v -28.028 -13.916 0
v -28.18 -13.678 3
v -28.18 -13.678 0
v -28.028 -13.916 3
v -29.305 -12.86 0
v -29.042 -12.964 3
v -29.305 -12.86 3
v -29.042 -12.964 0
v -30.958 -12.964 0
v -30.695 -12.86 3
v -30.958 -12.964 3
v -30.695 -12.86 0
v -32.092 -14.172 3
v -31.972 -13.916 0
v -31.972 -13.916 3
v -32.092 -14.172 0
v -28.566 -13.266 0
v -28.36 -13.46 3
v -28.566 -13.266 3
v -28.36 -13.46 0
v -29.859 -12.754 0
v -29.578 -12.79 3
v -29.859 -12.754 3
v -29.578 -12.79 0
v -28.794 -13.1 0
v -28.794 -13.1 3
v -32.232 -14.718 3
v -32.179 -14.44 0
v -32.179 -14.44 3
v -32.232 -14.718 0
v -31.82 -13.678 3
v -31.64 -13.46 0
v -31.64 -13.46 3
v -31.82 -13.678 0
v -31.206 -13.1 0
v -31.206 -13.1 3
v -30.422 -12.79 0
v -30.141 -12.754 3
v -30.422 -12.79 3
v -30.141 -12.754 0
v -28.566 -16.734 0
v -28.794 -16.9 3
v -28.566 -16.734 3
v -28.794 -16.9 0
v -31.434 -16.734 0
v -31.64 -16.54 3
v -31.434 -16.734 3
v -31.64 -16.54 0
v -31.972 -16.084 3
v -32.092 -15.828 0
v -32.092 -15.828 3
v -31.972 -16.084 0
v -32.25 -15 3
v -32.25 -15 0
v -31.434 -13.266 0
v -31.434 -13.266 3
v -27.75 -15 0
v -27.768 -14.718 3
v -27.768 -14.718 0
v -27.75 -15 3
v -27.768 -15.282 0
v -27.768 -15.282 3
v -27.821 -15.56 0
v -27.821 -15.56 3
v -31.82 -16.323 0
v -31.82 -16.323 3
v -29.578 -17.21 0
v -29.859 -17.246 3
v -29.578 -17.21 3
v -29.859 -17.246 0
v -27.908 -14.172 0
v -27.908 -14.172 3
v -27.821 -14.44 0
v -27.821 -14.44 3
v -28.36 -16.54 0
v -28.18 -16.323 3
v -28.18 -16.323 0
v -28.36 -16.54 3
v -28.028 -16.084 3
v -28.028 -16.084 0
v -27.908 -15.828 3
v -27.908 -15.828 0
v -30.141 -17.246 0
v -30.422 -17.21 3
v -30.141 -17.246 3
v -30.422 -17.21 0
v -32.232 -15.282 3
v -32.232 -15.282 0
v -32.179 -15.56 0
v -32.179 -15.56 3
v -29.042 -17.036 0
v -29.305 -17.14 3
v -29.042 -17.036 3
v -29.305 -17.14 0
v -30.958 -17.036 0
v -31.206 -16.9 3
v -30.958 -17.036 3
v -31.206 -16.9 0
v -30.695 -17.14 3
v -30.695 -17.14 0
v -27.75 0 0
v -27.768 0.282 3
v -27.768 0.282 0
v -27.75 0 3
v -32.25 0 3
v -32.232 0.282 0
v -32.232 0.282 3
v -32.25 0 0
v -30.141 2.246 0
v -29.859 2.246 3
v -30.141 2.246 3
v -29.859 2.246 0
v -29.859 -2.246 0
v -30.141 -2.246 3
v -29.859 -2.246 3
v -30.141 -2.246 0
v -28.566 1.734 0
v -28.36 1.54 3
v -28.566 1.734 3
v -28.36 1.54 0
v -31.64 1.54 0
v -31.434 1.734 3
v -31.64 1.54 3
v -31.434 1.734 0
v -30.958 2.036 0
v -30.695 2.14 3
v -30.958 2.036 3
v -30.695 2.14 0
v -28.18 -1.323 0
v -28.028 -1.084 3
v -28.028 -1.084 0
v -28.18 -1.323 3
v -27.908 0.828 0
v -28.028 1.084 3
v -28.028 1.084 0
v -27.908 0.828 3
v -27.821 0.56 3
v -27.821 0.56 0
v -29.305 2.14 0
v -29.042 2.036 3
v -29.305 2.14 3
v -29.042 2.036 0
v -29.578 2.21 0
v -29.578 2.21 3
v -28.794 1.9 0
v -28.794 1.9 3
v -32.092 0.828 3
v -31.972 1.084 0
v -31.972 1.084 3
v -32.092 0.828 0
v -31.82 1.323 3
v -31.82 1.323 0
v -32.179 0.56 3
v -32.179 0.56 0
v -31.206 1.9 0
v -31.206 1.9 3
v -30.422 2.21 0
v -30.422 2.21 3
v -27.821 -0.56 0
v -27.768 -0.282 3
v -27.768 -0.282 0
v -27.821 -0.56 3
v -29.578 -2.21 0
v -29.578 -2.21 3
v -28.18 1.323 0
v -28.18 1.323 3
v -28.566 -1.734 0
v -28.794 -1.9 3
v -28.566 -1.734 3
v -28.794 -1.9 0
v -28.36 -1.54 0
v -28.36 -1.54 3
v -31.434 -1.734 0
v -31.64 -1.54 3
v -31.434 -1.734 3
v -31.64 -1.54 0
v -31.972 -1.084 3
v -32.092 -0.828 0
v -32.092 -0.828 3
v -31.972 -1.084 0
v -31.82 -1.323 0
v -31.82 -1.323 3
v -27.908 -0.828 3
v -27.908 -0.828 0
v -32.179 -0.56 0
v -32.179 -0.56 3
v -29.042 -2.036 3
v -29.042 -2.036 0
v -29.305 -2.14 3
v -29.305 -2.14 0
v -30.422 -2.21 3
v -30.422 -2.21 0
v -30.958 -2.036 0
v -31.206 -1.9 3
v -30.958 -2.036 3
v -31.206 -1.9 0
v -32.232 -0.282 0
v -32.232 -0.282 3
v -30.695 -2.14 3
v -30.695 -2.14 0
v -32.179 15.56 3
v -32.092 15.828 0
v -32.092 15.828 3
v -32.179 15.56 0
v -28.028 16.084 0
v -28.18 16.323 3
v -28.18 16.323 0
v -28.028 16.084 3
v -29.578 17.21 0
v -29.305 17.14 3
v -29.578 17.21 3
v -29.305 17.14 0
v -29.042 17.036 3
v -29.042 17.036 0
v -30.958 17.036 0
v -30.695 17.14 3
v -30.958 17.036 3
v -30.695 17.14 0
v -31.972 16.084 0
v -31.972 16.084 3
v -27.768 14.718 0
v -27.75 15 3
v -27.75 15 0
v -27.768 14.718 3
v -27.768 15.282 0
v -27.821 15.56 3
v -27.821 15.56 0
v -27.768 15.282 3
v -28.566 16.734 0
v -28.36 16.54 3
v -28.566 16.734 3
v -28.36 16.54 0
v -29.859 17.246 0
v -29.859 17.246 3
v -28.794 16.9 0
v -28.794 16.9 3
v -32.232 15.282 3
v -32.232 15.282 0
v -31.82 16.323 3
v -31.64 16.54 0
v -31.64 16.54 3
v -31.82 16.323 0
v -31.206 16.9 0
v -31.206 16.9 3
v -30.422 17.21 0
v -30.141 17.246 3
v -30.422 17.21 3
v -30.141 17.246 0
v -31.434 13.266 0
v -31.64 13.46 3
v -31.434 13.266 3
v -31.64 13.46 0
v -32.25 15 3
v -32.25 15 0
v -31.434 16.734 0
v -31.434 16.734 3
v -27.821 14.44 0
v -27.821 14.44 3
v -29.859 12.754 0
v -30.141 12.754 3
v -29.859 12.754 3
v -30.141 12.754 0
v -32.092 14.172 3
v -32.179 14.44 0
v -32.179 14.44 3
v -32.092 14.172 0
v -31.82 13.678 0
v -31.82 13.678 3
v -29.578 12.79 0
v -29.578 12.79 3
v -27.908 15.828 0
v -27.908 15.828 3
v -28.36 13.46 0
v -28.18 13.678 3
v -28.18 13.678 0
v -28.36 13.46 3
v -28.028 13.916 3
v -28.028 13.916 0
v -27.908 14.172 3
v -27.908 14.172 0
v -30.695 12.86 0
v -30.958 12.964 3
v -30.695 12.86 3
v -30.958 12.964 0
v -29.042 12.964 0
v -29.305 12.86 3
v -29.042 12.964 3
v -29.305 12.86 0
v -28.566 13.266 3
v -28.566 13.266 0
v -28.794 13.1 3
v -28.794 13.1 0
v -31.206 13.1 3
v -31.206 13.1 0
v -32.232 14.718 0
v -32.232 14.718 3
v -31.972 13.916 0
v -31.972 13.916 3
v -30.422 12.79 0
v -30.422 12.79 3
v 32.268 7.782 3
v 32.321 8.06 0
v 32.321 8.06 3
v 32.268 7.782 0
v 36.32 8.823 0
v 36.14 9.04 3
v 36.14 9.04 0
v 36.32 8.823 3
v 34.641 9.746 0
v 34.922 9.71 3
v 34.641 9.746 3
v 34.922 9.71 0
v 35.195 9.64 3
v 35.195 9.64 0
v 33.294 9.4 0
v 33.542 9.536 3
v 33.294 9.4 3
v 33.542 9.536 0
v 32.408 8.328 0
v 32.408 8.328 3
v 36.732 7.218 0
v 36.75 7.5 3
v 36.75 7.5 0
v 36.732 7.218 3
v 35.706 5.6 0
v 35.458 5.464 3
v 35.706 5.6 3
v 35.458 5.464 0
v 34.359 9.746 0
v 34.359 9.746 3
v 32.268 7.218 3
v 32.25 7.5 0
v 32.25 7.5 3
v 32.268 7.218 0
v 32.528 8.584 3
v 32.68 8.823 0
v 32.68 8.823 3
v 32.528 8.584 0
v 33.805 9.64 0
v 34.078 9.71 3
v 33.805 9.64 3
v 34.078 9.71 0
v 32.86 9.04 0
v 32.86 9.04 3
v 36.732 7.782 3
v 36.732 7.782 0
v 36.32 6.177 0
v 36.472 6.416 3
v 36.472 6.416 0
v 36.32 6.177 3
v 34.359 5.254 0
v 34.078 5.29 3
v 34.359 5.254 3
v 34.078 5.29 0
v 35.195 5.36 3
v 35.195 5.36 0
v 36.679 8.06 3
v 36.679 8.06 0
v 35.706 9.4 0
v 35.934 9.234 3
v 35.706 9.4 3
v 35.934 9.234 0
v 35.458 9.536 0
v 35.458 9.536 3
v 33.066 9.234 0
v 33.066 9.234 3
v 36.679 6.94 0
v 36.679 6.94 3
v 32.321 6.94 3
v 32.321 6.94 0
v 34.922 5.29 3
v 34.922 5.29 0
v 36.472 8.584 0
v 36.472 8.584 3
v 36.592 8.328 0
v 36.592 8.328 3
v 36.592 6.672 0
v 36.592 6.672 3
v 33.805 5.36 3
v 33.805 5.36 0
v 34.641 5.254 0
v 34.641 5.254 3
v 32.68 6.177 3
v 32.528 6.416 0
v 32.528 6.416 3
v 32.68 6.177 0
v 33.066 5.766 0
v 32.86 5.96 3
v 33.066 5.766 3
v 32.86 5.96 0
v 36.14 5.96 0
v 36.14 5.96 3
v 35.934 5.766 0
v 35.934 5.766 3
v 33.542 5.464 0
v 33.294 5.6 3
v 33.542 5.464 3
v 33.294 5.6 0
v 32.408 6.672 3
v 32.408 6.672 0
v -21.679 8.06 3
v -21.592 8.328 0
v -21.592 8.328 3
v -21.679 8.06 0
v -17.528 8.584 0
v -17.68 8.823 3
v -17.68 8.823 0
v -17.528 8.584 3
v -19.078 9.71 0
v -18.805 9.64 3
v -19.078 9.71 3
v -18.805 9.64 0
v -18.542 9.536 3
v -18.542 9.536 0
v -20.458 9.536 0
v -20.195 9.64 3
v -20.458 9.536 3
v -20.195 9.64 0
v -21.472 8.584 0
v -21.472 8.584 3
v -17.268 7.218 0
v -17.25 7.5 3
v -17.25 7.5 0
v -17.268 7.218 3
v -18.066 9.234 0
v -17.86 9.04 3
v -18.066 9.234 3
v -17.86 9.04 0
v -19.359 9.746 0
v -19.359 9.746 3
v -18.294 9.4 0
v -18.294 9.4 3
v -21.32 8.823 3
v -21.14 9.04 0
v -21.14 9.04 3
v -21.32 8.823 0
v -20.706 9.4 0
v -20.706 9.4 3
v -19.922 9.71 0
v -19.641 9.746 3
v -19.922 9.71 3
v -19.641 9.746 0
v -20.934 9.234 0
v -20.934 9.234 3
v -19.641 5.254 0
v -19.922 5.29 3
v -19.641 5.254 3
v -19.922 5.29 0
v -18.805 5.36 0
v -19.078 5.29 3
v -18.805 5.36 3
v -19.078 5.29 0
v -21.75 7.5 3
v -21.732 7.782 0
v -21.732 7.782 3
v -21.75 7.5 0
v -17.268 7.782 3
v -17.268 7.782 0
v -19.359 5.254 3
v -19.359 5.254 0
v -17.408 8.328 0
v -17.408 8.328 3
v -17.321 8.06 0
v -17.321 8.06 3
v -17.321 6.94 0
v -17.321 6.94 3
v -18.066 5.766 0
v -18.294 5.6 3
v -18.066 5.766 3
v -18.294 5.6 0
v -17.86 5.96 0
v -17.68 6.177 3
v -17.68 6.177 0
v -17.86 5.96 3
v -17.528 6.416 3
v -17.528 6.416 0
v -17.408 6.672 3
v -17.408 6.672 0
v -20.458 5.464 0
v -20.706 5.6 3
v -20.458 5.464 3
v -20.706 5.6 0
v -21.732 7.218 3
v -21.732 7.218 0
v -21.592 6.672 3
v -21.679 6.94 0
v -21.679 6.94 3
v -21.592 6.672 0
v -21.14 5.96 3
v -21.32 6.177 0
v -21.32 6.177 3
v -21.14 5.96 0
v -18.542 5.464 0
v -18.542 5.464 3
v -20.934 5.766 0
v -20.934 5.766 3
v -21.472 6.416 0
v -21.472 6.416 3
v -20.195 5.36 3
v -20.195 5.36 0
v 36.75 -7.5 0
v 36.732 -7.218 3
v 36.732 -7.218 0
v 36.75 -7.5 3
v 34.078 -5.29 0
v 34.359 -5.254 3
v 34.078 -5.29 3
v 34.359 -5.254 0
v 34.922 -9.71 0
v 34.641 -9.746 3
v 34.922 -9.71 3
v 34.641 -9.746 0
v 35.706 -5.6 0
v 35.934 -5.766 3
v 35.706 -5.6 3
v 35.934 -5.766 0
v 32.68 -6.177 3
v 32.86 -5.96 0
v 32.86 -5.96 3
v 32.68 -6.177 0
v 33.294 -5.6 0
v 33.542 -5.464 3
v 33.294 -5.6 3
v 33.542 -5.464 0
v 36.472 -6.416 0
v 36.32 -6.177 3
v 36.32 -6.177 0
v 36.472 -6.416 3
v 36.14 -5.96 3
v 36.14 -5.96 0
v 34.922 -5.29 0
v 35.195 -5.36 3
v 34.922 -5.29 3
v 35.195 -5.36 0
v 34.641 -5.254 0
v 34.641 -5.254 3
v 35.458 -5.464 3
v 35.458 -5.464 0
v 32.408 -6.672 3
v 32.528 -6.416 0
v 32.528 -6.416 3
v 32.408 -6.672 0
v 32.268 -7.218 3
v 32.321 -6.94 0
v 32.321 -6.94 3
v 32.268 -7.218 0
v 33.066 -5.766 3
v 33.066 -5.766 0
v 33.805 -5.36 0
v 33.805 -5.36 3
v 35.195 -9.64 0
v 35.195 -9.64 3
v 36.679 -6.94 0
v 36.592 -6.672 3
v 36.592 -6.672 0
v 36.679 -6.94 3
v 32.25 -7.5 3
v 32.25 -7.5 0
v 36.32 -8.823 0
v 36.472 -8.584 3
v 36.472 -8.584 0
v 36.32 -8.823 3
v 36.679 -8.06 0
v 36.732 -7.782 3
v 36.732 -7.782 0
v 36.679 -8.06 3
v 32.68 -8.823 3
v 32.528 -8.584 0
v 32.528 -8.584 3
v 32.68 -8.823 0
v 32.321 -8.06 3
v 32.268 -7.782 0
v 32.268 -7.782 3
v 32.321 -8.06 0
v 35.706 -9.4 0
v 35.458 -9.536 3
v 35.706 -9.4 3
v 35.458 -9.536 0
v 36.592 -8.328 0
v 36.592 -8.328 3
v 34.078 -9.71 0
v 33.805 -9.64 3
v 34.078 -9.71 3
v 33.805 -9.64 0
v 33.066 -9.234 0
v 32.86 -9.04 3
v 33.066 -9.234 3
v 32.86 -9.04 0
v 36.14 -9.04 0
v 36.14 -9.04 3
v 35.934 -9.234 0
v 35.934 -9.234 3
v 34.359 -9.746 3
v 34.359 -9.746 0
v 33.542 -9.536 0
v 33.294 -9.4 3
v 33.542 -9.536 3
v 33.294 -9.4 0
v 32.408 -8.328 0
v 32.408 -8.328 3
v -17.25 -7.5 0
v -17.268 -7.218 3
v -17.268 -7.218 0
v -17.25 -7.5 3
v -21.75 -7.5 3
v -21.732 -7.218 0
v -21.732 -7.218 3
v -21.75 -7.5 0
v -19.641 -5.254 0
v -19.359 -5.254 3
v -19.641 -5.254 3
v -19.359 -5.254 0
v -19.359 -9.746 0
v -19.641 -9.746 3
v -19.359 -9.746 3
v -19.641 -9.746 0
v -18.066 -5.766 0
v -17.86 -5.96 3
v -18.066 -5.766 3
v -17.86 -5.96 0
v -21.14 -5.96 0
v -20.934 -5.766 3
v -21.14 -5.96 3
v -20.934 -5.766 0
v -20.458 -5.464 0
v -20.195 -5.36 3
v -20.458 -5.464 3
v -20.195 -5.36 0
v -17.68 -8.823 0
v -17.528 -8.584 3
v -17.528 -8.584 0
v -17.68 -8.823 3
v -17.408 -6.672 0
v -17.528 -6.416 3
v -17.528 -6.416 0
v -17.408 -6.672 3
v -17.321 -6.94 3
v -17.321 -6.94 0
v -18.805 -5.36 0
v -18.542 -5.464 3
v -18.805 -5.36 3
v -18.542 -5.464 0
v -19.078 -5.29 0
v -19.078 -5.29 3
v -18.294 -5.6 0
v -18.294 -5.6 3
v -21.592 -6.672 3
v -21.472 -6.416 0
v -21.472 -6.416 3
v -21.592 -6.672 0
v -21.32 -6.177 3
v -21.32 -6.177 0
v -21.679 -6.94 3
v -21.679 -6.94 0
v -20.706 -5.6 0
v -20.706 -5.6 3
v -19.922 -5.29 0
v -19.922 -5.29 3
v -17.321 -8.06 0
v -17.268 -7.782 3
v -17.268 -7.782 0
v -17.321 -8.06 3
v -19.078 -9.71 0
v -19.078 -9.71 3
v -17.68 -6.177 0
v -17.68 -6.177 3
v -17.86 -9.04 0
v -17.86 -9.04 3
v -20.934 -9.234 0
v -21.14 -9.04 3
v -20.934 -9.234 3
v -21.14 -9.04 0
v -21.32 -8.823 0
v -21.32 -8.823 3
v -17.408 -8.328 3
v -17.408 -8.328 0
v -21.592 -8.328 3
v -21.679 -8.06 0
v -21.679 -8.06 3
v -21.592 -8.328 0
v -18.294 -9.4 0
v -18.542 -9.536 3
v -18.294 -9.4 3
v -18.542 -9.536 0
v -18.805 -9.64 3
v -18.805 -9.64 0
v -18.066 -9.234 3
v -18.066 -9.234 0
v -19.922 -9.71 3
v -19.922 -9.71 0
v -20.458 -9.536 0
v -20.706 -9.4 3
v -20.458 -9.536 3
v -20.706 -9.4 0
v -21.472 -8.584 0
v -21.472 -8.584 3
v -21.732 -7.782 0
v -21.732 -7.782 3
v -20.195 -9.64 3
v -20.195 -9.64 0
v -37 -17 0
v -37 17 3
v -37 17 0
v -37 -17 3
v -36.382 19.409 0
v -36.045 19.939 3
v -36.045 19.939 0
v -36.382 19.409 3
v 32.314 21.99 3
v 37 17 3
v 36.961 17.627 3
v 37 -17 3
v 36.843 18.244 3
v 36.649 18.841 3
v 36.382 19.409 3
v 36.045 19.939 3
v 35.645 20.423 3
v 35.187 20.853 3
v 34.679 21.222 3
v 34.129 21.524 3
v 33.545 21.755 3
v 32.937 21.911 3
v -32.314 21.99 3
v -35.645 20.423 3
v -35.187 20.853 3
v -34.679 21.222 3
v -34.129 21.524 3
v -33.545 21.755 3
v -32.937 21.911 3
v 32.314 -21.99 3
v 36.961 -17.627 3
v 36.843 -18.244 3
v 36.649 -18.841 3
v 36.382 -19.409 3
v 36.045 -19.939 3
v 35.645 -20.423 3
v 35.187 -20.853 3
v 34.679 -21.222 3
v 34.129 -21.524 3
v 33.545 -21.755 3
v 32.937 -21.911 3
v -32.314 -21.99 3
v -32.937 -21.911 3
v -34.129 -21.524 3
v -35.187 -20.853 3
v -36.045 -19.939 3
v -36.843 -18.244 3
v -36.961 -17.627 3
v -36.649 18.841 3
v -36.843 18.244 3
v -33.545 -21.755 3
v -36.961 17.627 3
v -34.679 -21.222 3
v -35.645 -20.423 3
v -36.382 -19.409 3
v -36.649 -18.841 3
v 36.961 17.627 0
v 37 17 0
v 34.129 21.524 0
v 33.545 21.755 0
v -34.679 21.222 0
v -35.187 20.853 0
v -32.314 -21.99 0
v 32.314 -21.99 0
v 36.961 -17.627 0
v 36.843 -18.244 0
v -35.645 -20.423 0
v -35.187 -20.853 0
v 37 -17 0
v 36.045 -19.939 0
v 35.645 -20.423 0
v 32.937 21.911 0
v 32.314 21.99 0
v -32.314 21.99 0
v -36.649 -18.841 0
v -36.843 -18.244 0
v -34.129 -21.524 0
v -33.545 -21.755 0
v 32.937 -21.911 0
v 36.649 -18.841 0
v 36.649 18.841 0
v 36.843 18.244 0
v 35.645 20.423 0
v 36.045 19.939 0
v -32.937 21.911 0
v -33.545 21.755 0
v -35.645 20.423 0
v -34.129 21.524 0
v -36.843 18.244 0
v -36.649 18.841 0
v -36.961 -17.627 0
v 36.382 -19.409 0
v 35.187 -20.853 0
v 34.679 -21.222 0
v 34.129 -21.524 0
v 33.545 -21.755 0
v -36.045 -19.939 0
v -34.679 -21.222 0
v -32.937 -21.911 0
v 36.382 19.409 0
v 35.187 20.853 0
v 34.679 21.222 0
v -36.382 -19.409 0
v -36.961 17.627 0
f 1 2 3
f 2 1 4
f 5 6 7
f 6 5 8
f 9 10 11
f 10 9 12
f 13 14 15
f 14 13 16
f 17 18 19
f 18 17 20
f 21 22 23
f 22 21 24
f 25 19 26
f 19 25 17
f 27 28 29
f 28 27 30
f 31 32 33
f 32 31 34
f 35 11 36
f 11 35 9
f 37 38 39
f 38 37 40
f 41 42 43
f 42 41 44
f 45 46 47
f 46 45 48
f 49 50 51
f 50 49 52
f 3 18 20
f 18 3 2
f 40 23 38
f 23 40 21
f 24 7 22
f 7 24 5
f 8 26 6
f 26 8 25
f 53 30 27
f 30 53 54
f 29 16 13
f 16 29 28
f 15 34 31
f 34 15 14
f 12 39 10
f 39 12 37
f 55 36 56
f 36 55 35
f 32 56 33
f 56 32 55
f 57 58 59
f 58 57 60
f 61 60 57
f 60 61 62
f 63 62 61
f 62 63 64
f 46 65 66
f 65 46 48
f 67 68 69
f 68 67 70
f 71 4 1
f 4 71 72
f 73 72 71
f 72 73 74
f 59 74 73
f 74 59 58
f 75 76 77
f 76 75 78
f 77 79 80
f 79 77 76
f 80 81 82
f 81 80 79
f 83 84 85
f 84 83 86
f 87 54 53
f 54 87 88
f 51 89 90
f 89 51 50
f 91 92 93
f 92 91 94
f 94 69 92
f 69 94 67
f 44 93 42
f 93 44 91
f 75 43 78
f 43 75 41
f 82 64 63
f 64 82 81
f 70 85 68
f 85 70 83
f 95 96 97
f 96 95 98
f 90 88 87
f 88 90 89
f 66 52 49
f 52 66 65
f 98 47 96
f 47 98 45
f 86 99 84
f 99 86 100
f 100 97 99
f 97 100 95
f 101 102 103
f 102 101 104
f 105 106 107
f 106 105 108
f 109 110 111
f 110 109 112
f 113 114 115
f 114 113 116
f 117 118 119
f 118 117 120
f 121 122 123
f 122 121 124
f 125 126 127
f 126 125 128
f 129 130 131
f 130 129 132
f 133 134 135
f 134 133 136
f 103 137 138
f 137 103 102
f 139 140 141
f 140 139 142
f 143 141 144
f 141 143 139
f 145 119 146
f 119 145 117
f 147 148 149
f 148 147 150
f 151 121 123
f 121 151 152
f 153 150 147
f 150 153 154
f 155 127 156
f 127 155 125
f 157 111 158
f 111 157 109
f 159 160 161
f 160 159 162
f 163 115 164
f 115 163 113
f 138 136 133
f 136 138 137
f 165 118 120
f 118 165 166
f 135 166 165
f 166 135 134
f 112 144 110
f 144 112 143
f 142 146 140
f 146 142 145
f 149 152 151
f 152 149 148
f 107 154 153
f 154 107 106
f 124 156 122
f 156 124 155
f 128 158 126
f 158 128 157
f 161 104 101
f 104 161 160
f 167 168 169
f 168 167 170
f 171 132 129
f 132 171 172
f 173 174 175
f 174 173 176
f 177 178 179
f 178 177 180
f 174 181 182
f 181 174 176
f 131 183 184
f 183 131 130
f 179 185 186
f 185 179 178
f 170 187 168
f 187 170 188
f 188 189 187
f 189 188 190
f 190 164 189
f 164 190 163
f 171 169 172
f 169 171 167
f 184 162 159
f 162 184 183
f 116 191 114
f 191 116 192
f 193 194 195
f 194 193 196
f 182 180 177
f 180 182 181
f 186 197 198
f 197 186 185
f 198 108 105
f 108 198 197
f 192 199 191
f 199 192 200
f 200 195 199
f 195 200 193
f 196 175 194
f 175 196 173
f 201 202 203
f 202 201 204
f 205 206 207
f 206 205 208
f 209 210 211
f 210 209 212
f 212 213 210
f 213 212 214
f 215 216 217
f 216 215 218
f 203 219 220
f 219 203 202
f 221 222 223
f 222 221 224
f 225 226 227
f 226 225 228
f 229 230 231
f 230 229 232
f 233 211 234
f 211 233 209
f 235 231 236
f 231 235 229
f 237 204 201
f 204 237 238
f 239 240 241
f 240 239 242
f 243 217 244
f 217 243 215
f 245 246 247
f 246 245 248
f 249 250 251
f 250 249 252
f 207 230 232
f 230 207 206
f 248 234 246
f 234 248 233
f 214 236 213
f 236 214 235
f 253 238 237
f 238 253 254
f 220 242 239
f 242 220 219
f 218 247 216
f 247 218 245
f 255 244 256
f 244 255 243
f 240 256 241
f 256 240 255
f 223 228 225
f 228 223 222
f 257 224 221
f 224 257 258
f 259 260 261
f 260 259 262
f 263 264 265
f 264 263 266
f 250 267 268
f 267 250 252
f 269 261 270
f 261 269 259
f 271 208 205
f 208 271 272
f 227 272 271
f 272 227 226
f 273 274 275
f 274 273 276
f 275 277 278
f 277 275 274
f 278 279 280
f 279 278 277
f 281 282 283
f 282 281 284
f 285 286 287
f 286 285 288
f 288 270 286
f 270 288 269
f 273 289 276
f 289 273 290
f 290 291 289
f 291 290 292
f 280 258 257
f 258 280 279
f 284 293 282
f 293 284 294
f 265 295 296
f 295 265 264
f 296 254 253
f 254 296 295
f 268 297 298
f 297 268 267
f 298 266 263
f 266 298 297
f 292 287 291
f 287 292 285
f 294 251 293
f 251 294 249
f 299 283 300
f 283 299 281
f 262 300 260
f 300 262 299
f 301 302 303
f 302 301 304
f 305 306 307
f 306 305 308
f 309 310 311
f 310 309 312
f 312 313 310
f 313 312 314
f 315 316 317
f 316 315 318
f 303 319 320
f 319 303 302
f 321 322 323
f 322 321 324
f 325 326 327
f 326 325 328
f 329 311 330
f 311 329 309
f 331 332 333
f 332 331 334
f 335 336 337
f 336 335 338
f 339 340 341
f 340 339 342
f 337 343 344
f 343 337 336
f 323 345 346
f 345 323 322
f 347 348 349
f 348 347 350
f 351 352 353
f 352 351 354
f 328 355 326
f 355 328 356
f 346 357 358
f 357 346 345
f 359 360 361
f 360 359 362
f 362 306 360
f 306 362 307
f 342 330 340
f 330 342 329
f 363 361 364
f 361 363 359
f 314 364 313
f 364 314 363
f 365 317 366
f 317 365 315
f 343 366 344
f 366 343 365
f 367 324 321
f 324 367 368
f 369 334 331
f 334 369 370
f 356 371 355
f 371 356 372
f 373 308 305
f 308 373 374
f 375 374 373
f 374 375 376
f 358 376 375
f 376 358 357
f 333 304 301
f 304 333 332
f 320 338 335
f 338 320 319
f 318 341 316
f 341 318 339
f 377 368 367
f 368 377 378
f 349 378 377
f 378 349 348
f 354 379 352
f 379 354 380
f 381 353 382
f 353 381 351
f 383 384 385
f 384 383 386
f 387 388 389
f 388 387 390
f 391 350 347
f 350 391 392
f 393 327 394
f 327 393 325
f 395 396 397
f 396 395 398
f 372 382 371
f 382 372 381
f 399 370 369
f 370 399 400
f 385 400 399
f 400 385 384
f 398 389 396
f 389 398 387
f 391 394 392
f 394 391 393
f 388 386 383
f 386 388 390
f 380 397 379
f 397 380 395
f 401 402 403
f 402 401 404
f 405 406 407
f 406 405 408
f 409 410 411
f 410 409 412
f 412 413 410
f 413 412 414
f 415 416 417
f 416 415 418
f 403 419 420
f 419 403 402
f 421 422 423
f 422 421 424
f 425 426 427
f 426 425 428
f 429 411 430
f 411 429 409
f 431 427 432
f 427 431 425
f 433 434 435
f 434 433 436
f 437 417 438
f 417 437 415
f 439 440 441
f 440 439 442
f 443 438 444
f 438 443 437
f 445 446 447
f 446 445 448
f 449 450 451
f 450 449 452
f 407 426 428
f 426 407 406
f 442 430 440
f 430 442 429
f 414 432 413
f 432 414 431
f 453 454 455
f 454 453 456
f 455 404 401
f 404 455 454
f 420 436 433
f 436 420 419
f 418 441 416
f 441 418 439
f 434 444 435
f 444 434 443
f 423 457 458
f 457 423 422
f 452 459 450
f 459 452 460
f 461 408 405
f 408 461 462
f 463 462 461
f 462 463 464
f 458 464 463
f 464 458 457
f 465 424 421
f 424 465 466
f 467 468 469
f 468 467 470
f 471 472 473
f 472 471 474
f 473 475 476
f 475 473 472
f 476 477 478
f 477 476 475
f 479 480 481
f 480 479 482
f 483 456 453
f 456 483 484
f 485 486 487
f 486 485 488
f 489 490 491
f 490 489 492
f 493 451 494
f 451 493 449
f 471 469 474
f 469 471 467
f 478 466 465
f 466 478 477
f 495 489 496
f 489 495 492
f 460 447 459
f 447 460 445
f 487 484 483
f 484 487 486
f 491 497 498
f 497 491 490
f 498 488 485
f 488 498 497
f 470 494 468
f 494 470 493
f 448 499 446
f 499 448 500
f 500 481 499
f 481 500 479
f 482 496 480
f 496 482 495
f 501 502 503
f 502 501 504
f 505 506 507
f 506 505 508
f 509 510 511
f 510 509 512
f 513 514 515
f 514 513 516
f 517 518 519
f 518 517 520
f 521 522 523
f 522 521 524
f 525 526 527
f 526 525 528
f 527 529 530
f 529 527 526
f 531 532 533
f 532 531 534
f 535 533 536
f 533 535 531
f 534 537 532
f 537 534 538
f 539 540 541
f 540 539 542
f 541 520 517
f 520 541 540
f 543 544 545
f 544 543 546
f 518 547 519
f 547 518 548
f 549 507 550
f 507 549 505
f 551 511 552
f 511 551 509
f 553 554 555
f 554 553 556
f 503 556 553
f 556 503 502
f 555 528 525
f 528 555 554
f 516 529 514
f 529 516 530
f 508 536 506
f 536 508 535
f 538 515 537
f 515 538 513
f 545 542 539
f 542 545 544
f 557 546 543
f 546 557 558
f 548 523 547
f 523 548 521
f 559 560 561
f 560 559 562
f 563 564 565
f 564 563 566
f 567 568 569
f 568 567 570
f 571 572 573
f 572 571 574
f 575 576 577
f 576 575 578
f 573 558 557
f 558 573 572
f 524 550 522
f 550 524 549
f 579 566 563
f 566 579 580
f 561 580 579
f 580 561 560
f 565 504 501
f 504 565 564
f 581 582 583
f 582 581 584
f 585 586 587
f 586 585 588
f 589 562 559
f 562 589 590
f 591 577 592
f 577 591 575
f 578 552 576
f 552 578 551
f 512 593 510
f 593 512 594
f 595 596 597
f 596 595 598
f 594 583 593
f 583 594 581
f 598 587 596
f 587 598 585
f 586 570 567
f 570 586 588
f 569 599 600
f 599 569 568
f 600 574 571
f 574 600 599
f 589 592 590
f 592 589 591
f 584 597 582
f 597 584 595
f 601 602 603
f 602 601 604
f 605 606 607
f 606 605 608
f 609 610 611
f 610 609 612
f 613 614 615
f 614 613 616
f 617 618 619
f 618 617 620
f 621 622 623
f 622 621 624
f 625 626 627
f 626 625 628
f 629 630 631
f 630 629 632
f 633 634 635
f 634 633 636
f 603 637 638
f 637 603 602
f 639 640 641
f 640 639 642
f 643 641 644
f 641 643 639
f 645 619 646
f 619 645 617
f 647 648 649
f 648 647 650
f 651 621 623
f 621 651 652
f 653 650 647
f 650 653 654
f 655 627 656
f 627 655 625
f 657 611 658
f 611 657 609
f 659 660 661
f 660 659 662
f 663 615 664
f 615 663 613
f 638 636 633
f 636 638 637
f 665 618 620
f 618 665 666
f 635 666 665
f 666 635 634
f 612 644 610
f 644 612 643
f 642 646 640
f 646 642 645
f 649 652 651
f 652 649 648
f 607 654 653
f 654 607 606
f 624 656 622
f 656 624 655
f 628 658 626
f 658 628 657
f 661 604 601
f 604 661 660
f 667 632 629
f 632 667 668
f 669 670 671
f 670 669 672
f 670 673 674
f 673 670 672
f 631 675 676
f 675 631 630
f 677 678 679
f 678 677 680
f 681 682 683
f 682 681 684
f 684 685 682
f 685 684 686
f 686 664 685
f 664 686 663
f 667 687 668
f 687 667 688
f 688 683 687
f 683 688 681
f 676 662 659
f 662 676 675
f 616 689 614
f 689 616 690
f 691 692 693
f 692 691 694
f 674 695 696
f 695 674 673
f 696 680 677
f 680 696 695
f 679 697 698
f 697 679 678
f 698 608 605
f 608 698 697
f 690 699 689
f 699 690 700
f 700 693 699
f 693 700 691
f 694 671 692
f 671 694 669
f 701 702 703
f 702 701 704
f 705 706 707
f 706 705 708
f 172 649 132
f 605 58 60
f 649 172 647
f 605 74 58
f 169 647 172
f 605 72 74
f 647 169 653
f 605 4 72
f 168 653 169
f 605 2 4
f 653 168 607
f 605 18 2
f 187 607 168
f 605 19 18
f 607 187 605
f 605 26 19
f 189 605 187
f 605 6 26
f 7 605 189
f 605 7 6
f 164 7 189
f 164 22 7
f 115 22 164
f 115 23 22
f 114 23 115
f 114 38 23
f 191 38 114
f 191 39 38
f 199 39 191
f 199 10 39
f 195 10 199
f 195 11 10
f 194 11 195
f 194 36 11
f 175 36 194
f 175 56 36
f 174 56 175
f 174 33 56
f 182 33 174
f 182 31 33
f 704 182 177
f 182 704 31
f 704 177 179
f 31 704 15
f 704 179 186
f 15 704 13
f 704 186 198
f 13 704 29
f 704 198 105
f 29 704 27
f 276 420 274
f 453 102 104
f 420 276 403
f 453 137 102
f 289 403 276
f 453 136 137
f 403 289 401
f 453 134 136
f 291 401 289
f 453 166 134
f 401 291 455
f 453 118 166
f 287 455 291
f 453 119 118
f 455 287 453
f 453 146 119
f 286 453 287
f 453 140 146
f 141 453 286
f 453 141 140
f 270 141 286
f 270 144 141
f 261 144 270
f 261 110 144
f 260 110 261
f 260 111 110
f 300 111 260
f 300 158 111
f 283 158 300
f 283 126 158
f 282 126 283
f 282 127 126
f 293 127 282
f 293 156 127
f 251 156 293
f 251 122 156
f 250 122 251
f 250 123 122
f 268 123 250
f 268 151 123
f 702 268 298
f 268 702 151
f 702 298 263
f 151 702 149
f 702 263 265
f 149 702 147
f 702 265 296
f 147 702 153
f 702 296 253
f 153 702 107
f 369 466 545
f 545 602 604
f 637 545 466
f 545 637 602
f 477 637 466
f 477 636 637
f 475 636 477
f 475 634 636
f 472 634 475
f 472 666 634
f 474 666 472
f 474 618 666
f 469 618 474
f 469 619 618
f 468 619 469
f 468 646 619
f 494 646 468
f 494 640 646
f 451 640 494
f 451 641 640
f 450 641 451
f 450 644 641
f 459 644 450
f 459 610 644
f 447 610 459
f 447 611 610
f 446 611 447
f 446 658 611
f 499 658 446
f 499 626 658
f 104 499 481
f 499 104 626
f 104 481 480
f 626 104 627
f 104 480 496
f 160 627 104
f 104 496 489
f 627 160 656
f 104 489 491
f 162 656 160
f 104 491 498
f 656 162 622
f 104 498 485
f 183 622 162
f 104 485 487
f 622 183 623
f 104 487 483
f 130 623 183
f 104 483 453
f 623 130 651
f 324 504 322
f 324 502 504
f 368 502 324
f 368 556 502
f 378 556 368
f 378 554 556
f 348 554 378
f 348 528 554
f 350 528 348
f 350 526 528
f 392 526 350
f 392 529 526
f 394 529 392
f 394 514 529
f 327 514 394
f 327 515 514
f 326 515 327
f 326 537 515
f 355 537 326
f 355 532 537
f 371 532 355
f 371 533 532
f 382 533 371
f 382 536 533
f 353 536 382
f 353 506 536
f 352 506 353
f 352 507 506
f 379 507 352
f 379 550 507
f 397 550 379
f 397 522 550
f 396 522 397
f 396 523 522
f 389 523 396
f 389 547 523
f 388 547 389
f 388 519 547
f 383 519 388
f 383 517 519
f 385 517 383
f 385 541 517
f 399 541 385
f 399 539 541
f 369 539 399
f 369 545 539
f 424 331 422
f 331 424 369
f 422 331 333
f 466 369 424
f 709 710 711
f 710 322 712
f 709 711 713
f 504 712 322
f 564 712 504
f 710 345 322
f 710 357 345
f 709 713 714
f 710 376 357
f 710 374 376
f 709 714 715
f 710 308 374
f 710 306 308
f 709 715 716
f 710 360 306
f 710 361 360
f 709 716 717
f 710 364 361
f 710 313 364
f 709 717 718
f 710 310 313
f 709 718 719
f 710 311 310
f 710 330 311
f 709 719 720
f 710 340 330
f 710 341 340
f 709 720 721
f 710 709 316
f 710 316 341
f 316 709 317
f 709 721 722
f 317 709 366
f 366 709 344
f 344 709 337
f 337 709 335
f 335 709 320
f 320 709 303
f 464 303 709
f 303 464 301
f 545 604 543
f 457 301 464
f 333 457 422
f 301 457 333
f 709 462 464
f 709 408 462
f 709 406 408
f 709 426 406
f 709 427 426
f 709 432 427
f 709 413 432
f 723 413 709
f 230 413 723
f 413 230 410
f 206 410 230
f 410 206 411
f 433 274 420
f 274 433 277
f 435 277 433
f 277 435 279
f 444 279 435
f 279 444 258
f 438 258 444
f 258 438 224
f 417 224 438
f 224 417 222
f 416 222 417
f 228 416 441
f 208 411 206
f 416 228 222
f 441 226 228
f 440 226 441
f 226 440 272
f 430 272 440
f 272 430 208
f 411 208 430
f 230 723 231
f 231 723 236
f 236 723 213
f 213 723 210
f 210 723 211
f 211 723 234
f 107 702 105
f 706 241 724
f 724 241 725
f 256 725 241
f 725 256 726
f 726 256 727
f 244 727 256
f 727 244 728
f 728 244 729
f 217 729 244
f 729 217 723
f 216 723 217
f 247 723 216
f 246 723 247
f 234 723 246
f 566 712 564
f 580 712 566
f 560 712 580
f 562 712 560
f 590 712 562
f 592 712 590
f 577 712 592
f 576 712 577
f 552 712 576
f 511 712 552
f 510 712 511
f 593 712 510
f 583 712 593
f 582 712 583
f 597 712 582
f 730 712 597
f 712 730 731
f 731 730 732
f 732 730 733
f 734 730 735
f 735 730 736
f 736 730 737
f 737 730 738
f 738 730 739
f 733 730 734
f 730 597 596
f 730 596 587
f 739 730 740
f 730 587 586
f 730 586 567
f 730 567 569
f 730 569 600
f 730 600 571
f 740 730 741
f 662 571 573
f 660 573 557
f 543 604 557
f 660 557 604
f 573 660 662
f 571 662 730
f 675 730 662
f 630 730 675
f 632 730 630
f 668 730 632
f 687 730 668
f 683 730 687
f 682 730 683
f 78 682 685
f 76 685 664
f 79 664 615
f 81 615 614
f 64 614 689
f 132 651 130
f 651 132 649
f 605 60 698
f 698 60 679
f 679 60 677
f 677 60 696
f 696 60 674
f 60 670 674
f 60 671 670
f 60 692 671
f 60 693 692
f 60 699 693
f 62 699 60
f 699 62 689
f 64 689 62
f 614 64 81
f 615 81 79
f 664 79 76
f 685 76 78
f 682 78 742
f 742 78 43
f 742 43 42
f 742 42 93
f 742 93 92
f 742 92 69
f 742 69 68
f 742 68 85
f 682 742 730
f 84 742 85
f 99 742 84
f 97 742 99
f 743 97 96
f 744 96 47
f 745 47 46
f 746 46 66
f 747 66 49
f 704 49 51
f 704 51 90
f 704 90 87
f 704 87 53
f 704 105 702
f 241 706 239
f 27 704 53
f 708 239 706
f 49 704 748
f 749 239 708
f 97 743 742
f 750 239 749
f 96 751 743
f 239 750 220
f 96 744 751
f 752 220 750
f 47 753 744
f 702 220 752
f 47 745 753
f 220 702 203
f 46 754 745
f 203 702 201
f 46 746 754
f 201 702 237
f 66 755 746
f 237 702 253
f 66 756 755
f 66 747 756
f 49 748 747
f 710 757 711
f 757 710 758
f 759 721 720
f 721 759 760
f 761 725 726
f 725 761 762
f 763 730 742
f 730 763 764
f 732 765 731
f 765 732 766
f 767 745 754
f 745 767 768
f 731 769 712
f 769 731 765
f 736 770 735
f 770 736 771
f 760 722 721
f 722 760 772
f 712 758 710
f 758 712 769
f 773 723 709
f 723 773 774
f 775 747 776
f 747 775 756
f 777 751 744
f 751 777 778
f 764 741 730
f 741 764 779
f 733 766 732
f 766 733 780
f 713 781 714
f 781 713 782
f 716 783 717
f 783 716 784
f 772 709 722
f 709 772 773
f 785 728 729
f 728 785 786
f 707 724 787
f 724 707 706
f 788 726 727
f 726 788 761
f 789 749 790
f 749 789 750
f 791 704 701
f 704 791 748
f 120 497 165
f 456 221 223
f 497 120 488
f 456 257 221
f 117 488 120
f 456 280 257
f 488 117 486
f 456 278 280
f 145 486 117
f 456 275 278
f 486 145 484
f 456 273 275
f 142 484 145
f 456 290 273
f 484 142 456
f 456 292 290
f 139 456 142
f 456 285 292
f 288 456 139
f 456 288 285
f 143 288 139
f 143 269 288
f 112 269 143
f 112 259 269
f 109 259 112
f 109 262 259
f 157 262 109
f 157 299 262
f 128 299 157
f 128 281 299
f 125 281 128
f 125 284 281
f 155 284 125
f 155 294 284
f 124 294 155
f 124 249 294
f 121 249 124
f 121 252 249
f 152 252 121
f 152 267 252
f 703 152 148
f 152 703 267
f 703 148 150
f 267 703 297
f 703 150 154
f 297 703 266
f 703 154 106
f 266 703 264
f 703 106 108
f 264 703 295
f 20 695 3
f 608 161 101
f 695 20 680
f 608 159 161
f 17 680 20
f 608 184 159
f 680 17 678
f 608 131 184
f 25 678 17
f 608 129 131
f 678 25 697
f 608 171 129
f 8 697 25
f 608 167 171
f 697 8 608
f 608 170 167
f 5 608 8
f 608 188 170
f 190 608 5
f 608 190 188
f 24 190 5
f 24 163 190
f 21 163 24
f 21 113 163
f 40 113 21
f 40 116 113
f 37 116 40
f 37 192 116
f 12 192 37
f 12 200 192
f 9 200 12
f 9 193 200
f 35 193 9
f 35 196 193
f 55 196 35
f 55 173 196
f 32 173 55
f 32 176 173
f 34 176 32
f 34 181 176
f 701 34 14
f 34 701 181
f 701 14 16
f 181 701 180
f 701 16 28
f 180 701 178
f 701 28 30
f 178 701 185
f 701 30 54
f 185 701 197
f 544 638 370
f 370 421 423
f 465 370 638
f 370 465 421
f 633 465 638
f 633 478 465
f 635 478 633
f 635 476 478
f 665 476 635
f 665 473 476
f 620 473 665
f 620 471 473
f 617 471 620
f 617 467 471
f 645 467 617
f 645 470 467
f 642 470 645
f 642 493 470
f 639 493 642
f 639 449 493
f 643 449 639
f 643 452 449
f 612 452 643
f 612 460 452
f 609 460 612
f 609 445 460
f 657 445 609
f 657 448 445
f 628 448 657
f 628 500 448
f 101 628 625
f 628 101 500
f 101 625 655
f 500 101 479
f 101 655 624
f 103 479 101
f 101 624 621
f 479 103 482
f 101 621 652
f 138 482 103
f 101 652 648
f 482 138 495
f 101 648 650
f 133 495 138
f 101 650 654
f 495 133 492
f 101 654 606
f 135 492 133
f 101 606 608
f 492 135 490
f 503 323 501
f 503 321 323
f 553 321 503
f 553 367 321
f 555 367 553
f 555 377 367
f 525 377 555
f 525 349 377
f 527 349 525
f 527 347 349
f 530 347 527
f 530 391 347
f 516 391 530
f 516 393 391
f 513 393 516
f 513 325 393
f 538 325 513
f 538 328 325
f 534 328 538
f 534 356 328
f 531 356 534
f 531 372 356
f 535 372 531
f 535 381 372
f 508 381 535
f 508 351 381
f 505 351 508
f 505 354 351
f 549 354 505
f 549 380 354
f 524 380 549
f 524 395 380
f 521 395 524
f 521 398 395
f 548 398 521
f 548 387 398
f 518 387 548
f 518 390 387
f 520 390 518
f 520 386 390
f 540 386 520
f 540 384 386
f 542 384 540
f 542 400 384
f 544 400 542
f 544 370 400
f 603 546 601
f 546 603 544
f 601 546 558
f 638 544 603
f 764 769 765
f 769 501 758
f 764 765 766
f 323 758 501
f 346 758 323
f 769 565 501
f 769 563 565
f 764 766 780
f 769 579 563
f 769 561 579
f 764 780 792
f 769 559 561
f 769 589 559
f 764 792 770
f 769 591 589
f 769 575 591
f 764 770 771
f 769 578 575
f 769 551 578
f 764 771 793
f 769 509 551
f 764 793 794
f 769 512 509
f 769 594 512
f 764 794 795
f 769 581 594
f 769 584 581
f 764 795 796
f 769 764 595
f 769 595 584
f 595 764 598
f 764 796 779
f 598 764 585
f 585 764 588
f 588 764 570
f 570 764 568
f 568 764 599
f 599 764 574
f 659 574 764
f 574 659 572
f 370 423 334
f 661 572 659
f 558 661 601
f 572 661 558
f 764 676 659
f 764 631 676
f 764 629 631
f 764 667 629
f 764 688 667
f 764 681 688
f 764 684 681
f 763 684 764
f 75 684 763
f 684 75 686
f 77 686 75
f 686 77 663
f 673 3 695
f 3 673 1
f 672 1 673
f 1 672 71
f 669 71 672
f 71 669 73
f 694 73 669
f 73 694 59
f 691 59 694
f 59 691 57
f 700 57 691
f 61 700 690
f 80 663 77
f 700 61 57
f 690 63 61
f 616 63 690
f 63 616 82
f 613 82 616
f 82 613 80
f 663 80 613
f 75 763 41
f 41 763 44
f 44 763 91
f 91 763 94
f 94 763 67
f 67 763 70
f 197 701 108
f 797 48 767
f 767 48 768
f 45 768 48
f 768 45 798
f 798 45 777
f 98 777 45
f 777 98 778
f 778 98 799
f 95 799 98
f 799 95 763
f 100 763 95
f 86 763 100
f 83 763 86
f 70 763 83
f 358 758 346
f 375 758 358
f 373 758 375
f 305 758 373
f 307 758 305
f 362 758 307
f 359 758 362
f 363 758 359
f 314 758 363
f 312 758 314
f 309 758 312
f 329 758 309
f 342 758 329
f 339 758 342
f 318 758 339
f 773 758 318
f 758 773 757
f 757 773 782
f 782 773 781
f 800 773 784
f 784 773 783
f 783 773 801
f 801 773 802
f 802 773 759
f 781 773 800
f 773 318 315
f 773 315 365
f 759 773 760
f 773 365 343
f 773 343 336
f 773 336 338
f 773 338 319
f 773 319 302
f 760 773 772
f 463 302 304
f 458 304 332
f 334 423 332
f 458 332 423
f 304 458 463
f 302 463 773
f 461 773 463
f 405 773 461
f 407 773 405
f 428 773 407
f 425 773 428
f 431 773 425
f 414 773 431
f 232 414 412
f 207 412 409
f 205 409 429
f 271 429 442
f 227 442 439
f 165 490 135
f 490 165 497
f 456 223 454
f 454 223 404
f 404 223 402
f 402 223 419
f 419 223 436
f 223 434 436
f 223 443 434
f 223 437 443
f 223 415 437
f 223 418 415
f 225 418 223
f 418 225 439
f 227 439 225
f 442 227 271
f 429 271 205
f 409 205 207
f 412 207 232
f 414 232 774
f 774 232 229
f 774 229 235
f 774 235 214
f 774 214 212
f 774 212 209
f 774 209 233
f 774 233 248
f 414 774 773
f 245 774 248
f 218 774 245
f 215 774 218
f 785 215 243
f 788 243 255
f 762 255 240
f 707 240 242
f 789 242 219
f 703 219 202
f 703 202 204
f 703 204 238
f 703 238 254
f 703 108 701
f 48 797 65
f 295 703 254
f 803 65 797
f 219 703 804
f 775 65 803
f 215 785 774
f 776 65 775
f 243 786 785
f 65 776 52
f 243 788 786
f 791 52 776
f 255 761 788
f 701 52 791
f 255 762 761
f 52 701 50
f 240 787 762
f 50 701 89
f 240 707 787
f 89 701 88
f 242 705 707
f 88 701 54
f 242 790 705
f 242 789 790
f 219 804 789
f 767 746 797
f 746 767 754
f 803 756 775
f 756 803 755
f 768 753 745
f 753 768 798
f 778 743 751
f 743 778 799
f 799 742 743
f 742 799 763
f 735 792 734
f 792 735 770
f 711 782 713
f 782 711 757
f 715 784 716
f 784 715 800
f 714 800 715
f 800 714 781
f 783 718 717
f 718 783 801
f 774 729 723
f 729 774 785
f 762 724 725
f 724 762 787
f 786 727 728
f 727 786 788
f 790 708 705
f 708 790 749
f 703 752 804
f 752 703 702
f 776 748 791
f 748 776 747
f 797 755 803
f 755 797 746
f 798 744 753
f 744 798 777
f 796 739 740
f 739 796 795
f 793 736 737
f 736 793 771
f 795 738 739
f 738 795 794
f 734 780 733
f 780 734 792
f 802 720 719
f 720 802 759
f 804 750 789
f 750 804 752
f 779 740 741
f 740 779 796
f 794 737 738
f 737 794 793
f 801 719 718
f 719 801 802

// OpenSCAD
$fn = 50;


difference() {
	union() {
		translate(v = [0, 0, 0]) {
			rotate(a = [0, 0, 0]) {
				hull() {
					translate(v = [-32.0000000000, 17.0000000000, 0]) {
						rotate(a = [0, 0, 0]) {
							translate(v = [0, 0, 0]) {
								rotate(a = [0, 0, 0]) {
									cylinder(h = 3, r = 5);
								}
							}
						}
					}
					translate(v = [32.0000000000, 17.0000000000, 0]) {
						rotate(a = [0, 0, 0]) {
							translate(v = [0, 0, 0]) {
								rotate(a = [0, 0, 0]) {
									cylinder(h = 3, r = 5);
								}
							}
						}
					}
					translate(v = [-32.0000000000, -17.0000000000, 0]) {
						rotate(a = [0, 0, 0]) {
							translate(v = [0, 0, 0]) {
								rotate(a = [0, 0, 0]) {
									cylinder(h = 3, r = 5);
								}
							}
						}
					}
					translate(v = [32.0000000000, -17.0000000000, 0]) {
						rotate(a = [0, 0, 0]) {
							translate(v = [0, 0, 0]) {
								rotate(a = [0, 0, 0]) {
									cylinder(h = 3, r = 5);
								}
							}
						}
					}
				}
			}
		}
	}
	union() {
		translate(v = [-30.0000000000, -15.0000000000, -125.0000000000]) {
			rotate(a = [0, 0, 0]) {
				cylinder(h = 250, r = 2.2500000000);
			}
		}
		translate(v = [-30.0000000000, 0.0000000000, -125.0000000000]) {
			rotate(a = [0, 0, 0]) {
				cylinder(h = 250, r = 2.2500000000);
			}
		}
		translate(v = [-30.0000000000, 15.0000000000, -125.0000000000]) {
			rotate(a = [0, 0, 0]) {
				cylinder(h = 250, r = 2.2500000000);
			}
		}
		translate(v = [34.5000000000, 7.5000000000, -125.0000000000]) {
			rotate(a = [0, 0, 0]) {
				cylinder(h = 250, r = 2.2500000000);
			}
		}
		translate(v = [-19.5000000000, 7.5000000000, -125.0000000000]) {
			rotate(a = [0, 0, 0]) {
				cylinder(h = 250, r = 2.2500000000);
			}
		}
		translate(v = [34.5000000000, -7.5000000000, -125.0000000000]) {
			rotate(a = [0, 0, 0]) {
				cylinder(h = 250, r = 2.2500000000);
			}
		}
		translate(v = [-19.5000000000, -7.5000000000, -125.0000000000]) {
			rotate(a = [0, 0, 0]) {
				cylinder(h = 250, r = 2.2500000000);
			}
		}
	}
}
